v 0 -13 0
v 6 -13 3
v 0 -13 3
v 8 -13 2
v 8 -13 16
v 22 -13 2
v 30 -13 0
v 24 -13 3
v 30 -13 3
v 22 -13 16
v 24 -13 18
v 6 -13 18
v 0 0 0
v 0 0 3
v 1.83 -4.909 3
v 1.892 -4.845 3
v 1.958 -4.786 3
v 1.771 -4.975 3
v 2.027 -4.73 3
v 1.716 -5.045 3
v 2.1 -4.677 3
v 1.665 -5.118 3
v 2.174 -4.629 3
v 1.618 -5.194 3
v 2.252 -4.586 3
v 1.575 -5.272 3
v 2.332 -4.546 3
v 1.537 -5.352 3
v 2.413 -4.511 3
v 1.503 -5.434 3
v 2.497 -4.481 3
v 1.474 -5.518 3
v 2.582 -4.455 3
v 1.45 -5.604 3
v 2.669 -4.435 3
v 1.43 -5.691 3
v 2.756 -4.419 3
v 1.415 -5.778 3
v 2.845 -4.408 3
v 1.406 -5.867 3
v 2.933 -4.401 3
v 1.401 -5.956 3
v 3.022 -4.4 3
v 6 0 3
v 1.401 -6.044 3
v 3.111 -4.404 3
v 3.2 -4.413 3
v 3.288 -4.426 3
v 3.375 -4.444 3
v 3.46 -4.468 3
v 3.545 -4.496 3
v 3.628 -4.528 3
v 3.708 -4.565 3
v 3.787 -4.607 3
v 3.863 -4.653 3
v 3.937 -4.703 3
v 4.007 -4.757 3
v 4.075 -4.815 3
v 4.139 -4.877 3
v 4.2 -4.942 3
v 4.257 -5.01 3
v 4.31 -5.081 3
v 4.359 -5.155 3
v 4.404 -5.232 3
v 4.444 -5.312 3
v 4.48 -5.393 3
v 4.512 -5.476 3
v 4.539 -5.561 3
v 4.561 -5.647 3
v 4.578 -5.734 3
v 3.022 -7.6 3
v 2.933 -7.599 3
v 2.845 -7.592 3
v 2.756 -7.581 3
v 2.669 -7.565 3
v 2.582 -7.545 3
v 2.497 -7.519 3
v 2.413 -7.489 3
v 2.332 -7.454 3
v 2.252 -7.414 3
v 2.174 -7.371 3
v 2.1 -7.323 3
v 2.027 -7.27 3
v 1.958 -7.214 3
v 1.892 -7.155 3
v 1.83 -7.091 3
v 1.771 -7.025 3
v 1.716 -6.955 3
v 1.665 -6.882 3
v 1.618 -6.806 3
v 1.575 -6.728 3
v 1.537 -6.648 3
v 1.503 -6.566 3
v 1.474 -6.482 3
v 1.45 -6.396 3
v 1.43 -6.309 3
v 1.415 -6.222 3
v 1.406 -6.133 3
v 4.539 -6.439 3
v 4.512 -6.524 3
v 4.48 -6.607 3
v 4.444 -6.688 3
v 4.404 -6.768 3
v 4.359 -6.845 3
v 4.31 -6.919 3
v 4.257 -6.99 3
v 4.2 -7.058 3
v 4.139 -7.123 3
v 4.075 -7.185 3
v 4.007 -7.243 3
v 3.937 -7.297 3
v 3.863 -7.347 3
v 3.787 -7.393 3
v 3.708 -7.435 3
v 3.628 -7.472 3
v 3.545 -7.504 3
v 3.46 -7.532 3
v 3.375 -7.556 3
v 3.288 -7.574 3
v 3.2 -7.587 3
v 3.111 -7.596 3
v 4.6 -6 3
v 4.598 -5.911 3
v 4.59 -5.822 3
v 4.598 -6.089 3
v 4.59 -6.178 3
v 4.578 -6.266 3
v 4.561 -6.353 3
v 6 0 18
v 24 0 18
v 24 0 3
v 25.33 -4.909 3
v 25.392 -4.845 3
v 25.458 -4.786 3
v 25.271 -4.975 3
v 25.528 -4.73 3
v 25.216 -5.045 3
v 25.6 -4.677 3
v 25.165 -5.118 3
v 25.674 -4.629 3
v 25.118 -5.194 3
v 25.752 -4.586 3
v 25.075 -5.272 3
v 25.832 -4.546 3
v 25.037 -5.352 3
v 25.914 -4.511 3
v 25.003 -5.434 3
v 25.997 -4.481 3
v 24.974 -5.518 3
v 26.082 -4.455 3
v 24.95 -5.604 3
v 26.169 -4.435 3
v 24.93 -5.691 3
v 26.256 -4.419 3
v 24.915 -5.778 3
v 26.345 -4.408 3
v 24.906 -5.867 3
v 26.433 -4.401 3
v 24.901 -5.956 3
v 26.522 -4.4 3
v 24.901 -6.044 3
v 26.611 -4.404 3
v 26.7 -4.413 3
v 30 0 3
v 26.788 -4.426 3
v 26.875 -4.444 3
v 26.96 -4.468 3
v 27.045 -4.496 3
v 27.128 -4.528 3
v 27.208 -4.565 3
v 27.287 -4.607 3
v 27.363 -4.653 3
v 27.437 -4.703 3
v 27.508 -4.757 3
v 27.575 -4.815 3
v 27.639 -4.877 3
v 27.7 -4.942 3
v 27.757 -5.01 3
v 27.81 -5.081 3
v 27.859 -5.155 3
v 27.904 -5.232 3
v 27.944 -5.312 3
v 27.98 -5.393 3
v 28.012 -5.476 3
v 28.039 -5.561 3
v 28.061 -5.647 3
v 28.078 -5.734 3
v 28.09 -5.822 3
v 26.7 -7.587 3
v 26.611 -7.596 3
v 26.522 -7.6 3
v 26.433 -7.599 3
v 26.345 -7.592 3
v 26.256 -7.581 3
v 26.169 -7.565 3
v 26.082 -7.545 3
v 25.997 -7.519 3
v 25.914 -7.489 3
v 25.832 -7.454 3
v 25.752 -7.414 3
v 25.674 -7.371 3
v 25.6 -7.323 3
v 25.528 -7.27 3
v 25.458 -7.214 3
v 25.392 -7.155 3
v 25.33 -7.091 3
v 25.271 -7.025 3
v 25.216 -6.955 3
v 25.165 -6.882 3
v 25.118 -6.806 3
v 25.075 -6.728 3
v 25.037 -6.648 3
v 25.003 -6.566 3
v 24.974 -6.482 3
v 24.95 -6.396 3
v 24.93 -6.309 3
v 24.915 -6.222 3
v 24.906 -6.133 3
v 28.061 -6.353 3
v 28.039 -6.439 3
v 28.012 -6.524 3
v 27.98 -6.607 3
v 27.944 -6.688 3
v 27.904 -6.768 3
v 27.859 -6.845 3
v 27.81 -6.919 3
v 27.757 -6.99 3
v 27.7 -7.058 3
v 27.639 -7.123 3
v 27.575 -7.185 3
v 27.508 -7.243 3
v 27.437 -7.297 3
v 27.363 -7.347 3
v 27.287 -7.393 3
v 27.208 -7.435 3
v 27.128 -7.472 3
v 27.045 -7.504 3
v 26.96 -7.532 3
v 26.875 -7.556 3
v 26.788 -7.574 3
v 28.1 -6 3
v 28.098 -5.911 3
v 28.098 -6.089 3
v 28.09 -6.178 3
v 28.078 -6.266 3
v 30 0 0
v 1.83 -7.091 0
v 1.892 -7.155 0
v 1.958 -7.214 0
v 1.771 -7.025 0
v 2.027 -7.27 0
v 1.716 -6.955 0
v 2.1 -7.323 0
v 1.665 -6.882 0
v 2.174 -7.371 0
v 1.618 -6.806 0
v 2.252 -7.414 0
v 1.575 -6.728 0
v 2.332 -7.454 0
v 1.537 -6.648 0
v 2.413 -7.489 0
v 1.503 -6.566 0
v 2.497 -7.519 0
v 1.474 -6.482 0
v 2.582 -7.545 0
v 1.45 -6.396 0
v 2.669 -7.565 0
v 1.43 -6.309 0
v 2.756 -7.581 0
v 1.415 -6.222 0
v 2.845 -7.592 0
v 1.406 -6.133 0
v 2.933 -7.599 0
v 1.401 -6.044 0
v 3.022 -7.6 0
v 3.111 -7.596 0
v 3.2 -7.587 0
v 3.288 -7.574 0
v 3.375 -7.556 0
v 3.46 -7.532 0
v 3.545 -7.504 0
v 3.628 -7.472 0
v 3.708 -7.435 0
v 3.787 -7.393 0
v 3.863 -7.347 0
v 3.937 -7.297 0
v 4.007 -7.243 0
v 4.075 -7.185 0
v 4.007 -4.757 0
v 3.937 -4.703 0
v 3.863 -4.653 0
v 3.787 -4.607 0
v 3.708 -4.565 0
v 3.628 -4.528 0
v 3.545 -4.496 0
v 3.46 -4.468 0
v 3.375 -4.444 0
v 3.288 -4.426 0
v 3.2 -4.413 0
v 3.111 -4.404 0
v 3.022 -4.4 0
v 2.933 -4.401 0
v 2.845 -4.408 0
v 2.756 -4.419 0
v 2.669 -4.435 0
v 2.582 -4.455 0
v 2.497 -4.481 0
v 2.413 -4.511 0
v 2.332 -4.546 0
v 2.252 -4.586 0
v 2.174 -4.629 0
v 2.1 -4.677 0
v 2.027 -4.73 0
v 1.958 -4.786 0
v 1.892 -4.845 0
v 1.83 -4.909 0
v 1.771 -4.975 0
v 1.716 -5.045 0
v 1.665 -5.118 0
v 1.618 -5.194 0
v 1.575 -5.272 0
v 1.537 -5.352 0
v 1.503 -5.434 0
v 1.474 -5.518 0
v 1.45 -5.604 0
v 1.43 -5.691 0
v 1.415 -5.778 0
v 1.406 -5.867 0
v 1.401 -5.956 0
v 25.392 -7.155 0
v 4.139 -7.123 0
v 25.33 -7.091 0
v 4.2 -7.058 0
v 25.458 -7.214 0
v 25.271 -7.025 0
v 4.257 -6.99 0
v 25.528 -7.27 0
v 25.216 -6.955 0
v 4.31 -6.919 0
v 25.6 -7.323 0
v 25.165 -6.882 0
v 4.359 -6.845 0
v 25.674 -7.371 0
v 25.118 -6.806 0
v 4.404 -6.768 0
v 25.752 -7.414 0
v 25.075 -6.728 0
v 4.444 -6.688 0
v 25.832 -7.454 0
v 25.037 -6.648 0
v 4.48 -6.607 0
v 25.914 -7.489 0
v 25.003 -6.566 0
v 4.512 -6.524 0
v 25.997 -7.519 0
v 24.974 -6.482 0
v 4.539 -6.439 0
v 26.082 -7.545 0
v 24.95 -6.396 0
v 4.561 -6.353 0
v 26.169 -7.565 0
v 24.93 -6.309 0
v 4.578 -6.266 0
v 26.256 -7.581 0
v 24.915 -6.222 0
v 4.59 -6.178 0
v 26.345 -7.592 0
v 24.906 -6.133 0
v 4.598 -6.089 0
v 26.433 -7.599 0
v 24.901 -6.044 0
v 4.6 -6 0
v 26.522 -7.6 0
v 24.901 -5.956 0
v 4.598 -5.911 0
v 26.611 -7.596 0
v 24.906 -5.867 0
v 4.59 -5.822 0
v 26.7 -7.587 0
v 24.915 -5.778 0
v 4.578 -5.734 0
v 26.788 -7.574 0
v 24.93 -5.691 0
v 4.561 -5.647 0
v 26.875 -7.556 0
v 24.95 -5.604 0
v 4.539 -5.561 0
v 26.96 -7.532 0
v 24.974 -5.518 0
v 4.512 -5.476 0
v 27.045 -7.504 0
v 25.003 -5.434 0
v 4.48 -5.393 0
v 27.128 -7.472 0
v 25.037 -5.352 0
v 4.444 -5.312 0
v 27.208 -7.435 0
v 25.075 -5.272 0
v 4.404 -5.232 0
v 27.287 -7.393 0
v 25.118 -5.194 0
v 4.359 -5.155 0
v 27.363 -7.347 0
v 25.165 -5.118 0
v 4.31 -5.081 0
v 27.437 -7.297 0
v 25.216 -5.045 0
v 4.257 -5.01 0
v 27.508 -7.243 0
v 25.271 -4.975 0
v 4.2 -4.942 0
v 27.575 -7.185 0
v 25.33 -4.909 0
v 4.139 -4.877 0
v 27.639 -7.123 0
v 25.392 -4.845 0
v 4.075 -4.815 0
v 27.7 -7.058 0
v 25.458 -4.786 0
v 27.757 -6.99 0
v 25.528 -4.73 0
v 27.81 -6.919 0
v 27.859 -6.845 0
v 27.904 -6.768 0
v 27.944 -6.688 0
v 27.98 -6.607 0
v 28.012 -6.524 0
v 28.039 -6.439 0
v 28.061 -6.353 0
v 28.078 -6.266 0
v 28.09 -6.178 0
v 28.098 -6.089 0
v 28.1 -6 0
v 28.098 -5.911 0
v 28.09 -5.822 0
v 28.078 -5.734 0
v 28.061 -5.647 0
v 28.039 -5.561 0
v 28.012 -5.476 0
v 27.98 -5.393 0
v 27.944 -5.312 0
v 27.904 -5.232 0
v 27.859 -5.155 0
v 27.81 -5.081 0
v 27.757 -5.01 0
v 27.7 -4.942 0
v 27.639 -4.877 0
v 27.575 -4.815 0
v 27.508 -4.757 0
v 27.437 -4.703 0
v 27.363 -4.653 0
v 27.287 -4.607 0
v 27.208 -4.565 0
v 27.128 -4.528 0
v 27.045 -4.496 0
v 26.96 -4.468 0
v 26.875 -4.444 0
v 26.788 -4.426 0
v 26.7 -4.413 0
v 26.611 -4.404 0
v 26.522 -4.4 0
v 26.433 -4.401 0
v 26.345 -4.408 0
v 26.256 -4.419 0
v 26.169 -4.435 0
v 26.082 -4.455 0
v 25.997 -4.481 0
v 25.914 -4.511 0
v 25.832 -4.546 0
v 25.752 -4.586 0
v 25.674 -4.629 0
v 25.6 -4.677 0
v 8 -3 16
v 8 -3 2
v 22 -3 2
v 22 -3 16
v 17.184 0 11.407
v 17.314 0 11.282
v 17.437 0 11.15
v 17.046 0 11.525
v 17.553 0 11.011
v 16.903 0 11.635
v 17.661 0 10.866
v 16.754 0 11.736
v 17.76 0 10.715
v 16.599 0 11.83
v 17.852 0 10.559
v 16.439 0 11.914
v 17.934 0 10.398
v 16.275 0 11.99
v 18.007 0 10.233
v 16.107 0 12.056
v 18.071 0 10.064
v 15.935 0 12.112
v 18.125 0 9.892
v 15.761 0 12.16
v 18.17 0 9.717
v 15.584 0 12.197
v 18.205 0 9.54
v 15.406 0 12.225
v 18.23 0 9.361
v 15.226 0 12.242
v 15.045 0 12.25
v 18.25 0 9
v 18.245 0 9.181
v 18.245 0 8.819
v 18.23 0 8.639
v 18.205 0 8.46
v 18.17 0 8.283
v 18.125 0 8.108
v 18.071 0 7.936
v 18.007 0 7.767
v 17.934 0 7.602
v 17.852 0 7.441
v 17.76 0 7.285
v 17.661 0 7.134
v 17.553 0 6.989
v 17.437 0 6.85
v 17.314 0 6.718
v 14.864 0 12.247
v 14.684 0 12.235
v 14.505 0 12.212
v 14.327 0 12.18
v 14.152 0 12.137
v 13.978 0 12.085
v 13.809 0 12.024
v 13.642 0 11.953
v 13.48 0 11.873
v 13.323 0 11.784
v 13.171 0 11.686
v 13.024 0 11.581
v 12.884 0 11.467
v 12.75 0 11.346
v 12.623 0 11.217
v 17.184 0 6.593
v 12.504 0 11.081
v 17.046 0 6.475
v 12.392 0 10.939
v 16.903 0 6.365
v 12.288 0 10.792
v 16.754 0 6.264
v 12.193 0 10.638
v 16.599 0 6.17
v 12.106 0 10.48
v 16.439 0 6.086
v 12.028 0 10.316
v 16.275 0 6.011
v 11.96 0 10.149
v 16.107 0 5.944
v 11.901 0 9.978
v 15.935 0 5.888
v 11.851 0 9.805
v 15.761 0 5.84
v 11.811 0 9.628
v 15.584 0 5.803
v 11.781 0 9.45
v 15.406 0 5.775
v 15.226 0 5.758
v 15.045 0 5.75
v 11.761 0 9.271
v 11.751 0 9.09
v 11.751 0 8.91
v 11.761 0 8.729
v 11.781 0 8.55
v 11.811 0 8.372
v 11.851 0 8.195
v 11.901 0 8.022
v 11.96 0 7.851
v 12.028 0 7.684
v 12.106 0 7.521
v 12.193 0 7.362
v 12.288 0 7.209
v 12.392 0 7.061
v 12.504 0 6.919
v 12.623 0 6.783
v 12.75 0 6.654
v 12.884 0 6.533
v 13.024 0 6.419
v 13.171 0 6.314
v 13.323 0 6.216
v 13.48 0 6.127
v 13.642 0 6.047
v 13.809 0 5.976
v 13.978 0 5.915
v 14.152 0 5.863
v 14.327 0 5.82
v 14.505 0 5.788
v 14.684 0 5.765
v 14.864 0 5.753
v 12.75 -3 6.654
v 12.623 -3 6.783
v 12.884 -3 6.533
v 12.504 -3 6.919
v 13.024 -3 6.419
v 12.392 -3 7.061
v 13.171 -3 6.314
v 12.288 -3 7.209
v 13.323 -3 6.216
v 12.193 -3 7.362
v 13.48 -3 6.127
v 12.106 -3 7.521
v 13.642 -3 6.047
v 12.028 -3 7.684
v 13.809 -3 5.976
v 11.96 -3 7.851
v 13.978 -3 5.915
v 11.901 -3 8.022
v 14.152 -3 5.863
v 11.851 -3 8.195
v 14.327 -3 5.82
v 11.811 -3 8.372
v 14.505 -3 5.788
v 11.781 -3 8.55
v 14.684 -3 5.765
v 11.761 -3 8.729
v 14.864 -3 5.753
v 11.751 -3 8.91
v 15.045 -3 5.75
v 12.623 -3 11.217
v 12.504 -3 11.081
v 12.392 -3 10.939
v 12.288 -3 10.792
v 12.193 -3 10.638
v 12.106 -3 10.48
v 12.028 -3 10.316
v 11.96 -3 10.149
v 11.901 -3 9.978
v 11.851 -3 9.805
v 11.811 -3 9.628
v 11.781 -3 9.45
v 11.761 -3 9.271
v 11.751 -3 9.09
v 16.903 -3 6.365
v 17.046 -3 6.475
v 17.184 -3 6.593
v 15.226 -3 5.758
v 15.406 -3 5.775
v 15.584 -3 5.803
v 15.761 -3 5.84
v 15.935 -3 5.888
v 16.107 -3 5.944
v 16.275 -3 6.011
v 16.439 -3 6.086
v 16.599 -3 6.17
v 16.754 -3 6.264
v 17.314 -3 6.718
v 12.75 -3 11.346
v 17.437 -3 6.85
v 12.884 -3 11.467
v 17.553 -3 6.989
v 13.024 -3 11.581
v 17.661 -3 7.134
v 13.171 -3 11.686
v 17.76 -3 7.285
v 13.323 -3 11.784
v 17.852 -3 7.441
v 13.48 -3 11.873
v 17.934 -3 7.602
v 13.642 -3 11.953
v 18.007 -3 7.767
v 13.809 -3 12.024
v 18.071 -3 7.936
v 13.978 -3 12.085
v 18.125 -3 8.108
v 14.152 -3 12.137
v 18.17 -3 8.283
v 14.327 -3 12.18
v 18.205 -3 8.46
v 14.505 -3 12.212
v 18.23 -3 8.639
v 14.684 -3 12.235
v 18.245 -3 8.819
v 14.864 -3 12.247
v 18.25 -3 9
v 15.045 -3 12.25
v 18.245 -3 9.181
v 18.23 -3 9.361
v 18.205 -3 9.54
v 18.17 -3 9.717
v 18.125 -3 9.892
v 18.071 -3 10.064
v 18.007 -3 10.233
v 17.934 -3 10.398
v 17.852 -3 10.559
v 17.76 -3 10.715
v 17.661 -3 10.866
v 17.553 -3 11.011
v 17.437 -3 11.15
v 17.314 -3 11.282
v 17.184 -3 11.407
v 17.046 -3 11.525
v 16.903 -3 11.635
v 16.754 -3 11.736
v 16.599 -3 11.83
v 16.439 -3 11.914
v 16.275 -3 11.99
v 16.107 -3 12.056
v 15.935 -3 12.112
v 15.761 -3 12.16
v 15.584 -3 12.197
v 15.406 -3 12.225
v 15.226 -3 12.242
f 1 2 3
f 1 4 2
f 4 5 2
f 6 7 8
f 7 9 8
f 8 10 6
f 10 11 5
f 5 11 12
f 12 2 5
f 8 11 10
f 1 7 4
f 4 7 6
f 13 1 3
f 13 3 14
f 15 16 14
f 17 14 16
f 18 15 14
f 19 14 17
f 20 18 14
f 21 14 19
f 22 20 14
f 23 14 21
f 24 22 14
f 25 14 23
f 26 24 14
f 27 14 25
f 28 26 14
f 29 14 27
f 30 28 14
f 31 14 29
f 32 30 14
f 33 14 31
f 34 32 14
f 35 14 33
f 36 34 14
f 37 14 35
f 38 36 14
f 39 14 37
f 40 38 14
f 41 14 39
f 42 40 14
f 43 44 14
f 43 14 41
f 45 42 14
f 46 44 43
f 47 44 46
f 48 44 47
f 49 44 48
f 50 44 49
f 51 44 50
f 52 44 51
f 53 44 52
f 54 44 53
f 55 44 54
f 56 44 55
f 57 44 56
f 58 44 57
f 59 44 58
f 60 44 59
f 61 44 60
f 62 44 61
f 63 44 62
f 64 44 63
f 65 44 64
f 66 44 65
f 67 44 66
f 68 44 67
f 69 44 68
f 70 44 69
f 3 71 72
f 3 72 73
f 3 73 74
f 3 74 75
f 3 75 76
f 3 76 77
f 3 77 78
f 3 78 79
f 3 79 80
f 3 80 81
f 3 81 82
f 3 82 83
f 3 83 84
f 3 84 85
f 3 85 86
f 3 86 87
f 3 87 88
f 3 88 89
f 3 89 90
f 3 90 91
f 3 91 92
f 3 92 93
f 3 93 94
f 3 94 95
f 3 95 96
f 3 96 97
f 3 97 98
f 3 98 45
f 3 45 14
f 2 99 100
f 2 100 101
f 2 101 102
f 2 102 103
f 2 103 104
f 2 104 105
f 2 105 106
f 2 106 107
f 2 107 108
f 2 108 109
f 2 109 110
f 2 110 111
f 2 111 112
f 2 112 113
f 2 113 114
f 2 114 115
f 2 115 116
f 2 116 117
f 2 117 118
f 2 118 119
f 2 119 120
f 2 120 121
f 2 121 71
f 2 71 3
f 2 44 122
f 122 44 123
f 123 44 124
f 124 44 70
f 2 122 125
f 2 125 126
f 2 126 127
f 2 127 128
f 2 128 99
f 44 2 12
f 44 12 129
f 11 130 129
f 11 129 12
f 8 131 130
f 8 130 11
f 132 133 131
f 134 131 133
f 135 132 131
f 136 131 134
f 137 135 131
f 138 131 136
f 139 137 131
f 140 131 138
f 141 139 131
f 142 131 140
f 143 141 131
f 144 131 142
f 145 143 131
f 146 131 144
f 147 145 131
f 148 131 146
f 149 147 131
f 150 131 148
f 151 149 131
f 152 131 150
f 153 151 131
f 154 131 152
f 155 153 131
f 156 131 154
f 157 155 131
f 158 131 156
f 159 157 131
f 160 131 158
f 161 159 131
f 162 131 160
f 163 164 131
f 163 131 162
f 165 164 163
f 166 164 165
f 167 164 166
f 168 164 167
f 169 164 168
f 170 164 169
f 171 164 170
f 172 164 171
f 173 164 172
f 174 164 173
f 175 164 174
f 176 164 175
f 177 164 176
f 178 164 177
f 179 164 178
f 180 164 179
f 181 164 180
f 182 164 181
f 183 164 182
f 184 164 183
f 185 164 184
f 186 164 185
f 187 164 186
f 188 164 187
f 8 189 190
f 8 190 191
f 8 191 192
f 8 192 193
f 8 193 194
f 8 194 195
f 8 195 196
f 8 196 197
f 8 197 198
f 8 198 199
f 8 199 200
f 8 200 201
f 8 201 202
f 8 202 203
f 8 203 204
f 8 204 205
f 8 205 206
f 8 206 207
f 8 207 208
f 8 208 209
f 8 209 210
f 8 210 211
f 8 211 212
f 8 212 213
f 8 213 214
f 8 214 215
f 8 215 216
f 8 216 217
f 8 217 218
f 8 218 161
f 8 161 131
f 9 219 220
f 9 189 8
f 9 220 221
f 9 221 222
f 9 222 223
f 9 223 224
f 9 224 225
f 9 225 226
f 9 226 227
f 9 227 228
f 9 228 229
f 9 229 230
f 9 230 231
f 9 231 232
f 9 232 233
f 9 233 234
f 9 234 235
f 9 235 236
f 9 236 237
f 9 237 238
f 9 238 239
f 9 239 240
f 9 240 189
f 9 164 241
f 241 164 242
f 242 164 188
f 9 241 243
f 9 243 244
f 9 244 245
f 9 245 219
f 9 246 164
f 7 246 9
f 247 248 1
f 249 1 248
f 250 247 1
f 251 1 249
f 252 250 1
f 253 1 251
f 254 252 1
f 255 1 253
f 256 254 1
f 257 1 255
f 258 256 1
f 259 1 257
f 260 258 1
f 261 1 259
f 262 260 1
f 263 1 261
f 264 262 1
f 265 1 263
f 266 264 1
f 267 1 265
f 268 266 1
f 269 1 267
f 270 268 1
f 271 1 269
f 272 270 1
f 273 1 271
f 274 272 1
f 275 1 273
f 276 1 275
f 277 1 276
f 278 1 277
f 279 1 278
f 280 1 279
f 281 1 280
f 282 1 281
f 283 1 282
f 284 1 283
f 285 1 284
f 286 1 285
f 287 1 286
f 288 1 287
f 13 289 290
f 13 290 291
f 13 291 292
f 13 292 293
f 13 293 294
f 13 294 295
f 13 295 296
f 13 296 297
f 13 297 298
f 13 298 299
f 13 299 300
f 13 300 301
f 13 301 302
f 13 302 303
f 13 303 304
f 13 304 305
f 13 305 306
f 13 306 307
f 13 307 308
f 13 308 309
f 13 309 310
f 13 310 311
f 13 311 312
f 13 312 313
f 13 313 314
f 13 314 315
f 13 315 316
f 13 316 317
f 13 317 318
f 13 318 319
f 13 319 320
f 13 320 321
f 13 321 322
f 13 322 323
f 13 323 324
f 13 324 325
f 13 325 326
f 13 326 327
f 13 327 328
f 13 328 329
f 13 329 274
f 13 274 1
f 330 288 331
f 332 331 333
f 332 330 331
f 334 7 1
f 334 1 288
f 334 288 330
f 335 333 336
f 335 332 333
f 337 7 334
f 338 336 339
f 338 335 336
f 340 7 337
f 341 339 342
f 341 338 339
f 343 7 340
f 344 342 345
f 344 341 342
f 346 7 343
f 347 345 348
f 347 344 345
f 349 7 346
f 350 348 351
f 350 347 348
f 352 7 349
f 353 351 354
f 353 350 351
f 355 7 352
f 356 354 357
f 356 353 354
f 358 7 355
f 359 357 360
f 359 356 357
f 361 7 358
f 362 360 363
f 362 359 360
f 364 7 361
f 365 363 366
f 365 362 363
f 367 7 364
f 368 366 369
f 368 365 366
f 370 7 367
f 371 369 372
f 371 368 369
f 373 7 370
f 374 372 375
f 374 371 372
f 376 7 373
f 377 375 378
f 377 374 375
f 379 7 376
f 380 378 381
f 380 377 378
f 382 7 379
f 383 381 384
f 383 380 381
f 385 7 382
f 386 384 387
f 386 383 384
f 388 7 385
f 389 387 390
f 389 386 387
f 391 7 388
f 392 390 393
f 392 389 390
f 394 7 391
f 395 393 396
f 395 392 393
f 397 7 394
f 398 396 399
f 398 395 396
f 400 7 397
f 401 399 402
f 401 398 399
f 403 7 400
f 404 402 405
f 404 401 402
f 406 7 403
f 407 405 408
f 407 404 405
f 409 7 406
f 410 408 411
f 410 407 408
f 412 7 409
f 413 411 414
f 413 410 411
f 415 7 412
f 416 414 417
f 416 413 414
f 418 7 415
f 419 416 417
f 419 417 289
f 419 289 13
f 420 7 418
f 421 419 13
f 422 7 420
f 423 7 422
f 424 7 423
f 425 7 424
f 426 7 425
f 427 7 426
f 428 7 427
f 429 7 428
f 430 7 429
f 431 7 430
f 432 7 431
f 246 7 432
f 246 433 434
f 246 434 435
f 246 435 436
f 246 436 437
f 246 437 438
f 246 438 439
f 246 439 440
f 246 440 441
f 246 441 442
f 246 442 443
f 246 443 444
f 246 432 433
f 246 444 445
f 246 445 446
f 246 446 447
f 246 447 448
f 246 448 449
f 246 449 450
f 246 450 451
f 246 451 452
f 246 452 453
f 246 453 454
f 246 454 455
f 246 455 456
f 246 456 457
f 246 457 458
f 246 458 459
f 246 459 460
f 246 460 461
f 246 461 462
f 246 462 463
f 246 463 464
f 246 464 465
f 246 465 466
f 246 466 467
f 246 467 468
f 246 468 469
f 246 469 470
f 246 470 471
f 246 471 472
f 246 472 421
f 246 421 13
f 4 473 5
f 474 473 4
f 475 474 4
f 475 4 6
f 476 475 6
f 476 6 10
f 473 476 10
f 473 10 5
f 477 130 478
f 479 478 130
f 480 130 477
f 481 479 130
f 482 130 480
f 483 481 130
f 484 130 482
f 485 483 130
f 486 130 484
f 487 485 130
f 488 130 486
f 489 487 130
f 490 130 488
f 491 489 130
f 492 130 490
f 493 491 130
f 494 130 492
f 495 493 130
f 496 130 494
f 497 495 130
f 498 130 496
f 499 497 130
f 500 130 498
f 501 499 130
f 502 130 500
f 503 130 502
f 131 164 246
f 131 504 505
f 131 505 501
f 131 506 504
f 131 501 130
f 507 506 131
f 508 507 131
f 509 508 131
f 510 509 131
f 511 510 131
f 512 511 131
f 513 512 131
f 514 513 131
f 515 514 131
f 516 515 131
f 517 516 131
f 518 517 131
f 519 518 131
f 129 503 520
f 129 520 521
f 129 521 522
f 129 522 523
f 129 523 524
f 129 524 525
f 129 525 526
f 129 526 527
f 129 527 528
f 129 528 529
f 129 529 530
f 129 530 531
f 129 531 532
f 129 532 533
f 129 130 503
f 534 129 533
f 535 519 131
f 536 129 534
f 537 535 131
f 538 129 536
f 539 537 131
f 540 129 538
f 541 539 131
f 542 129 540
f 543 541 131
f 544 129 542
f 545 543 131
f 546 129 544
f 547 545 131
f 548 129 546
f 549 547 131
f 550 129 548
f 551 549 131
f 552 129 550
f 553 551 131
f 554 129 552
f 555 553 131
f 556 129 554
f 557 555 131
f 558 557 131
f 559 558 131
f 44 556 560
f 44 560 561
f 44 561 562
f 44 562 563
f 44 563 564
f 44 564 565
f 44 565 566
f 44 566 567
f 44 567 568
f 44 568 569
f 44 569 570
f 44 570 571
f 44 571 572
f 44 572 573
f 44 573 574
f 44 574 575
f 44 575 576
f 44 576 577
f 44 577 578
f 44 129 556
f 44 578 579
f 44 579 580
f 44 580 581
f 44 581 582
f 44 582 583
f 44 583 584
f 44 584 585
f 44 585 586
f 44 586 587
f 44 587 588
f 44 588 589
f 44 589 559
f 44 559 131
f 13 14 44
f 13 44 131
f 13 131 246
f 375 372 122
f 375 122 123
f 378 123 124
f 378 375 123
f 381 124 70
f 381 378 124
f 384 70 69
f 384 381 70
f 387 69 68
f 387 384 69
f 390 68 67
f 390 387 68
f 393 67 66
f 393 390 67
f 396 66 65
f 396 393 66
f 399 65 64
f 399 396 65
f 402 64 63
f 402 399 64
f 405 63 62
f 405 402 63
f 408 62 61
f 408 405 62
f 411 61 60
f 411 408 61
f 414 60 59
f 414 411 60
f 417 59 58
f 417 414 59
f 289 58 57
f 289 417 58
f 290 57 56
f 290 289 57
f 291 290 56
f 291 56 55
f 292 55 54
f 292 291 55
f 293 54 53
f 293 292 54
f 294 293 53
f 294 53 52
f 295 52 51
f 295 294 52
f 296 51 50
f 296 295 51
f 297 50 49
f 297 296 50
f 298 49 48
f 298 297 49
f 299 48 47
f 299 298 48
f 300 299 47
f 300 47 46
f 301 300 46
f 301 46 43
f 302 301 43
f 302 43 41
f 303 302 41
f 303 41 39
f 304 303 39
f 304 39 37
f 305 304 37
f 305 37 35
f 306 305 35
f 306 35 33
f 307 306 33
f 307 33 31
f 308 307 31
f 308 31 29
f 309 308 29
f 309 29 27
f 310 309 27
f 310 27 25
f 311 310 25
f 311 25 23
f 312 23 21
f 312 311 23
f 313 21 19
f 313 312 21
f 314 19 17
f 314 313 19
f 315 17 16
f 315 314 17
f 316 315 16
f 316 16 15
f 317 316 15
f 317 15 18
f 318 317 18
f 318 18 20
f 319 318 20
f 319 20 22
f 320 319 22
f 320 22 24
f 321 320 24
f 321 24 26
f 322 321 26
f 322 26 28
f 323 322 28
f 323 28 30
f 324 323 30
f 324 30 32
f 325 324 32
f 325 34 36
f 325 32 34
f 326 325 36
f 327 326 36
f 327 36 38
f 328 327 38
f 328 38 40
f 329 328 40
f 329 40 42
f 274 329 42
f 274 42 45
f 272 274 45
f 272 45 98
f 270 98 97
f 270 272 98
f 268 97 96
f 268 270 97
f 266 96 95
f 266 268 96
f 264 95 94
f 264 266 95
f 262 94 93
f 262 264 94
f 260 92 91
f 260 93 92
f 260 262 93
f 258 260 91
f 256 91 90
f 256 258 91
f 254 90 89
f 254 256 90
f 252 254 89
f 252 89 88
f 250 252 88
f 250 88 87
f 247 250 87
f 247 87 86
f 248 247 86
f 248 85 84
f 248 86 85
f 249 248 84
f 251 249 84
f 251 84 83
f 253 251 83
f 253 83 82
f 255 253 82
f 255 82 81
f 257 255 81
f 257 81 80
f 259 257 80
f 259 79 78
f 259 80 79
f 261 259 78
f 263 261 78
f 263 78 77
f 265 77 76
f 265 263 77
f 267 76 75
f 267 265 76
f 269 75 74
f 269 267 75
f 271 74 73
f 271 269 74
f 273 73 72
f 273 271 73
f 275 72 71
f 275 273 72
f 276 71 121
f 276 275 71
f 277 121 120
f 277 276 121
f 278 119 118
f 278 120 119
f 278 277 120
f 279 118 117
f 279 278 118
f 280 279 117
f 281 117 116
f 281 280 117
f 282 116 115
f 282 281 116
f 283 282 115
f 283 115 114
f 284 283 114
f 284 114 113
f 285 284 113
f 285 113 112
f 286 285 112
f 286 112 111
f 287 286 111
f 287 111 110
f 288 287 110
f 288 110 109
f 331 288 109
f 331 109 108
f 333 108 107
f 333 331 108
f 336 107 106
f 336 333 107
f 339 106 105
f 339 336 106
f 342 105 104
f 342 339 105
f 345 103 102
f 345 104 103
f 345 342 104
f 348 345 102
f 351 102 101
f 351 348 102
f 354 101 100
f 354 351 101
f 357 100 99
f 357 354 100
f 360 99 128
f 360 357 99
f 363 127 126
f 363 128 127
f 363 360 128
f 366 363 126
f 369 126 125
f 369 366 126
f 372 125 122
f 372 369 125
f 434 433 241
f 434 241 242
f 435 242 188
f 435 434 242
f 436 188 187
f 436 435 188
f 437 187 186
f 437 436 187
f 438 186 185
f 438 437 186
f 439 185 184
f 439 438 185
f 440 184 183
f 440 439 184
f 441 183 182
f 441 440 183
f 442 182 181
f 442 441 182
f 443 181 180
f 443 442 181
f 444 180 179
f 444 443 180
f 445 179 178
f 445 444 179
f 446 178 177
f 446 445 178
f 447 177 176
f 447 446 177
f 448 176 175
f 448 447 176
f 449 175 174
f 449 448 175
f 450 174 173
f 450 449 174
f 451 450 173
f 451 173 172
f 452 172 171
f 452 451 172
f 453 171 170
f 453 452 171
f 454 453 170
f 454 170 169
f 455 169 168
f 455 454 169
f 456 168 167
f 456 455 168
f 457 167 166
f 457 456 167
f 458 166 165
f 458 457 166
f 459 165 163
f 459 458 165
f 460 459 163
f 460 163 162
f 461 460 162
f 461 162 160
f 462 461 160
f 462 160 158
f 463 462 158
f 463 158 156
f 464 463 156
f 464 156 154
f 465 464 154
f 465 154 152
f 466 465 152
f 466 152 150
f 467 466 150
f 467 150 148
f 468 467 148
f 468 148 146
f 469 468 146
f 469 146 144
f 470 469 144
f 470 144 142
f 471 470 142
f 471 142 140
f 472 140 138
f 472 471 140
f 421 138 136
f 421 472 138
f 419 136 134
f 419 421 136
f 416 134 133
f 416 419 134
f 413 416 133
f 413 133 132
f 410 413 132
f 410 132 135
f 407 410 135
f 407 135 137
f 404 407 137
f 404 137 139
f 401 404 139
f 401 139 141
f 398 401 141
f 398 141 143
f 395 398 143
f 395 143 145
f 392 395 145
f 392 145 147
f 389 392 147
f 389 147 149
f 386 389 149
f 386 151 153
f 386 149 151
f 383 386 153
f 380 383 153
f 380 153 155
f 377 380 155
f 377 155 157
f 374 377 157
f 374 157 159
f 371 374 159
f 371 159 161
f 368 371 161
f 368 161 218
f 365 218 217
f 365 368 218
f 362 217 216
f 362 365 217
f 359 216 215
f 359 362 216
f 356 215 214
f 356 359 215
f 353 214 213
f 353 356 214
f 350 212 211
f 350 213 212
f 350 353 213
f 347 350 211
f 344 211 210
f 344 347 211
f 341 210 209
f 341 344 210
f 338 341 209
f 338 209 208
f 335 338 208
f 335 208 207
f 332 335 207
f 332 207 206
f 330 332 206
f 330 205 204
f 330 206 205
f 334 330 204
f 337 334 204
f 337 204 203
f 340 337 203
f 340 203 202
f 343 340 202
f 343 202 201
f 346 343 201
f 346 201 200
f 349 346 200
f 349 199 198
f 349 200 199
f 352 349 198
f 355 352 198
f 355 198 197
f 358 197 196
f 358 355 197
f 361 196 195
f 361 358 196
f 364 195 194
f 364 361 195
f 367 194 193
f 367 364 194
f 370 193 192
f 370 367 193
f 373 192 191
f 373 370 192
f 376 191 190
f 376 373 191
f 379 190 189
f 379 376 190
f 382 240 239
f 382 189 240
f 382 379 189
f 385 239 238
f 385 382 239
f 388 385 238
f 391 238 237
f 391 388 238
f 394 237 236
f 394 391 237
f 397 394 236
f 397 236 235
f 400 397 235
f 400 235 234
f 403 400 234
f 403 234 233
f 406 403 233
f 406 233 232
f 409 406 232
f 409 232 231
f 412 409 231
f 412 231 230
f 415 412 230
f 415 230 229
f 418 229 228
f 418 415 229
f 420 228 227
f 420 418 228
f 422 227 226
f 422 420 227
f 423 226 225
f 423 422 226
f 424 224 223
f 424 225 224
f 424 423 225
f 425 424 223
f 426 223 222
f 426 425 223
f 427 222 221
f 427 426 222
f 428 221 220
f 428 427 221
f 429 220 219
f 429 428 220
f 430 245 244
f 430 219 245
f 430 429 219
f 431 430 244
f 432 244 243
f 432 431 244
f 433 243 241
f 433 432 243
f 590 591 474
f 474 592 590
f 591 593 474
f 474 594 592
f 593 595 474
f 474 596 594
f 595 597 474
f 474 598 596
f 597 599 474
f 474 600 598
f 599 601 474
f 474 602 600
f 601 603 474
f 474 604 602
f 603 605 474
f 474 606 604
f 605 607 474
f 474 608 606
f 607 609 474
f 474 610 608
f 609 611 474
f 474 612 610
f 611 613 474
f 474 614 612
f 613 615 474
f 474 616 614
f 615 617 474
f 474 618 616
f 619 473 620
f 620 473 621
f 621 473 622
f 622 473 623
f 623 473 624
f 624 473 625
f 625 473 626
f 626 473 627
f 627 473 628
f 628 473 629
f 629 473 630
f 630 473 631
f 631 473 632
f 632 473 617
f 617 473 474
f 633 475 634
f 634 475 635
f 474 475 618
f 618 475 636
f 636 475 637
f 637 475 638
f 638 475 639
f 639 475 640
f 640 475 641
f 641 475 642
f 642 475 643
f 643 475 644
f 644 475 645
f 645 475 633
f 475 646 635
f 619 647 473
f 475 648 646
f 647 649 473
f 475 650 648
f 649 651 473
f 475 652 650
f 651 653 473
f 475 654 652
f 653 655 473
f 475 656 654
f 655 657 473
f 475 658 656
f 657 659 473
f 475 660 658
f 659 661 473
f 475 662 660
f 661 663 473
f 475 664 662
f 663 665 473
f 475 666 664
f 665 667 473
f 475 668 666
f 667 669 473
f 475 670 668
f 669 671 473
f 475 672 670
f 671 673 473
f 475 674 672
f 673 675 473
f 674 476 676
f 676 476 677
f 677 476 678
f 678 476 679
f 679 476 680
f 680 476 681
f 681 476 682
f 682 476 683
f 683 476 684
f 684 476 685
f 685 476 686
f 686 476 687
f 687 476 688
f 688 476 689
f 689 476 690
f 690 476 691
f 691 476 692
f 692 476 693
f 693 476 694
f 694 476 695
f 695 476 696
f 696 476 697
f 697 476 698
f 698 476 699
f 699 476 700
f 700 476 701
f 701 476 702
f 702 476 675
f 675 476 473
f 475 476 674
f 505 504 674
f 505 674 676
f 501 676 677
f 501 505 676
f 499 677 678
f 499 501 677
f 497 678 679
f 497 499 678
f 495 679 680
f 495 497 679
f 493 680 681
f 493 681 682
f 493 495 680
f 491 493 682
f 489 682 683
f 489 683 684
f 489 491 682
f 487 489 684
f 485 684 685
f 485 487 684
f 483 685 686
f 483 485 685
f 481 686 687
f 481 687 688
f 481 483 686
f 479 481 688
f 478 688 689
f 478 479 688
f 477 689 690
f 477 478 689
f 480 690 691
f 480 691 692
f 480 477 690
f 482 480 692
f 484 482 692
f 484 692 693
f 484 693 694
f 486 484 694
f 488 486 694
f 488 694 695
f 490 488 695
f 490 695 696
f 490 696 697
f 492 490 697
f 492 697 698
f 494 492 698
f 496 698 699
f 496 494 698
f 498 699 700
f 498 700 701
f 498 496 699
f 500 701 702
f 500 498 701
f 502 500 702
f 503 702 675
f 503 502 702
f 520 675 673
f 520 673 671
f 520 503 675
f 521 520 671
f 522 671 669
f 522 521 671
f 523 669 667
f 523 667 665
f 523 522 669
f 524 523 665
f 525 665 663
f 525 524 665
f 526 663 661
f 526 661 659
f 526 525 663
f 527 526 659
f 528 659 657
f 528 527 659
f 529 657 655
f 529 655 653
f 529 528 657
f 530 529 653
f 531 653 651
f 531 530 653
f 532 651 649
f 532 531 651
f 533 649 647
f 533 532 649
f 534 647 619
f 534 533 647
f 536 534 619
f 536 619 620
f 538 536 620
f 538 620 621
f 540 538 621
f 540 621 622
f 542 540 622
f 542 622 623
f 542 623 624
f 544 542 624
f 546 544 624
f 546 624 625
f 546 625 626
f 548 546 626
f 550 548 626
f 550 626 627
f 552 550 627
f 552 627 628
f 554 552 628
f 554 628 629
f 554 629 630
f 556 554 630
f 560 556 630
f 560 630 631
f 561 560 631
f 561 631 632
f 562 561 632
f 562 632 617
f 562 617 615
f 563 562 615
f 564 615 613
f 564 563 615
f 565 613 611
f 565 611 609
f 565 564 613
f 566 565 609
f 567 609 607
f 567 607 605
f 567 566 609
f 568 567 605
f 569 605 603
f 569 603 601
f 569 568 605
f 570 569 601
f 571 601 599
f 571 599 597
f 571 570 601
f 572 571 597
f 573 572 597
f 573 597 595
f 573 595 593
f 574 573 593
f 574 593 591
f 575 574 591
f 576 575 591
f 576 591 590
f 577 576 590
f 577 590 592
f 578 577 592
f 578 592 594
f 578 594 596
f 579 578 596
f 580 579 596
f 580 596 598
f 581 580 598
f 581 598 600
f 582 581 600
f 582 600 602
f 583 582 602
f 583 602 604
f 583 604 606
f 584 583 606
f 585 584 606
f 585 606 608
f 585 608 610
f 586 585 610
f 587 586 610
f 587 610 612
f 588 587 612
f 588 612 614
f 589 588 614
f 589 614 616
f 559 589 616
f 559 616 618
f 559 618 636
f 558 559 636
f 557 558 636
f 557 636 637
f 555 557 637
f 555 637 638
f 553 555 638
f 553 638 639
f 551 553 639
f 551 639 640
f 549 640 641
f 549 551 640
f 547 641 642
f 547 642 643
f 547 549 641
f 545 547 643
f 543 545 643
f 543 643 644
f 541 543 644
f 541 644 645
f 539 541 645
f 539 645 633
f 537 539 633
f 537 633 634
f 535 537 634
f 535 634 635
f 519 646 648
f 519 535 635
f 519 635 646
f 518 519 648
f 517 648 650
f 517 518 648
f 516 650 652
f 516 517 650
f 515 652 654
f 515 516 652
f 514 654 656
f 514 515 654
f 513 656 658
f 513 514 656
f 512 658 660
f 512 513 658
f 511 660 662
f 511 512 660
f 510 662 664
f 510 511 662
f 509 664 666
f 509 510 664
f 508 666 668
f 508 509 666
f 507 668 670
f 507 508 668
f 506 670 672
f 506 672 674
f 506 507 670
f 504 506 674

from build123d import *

# Parameters (mm, degrees)
SKETCH_R     = 3.25
PAD_DEPTH    = 3
SKETCH001_W  = 14
SKETCH001_H  = 14
PAD001_DEPTH = 13
SKETCH002_R  = 1.6
POCKET_DEPTH = 18.001


with BuildPart() as part:
    # Sketch → Pad (new body)
    with BuildSketch(Plane.XZ):
        Polygon((0, 0), (30, 0), (30, 3), (24, 3), (24, 18), (6, 18), (6, 3), (0, 3), align=None)
        with Locations((15, 9)):
            Circle(SKETCH_R, mode=Mode.SUBTRACT)
    extrude(amount=PAD_DEPTH)

    # Sketch001 → Pad001 (join)
    with BuildSketch(Plane.XZ):
        Polygon((0, 0), (0, 3), (6, 3), (6, 18), (24, 18), (24, 3), (30, 3), (30, 0), align=None)
        with Locations((15, 9)):
            Rectangle(SKETCH001_W, SKETCH001_H, mode=Mode.SUBTRACT)
    extrude(amount=PAD001_DEPTH)

    # Sketch002 → Pocket (cut, through all)
    with BuildSketch(Plane.XY):
        with Locations((3, -6)):
            Circle(SKETCH002_R)
        with Locations((26.5, -6)):
            Circle(SKETCH002_R)
    extrude(amount=POCKET_DEPTH, mode=Mode.SUBTRACT)


solid = part.part
